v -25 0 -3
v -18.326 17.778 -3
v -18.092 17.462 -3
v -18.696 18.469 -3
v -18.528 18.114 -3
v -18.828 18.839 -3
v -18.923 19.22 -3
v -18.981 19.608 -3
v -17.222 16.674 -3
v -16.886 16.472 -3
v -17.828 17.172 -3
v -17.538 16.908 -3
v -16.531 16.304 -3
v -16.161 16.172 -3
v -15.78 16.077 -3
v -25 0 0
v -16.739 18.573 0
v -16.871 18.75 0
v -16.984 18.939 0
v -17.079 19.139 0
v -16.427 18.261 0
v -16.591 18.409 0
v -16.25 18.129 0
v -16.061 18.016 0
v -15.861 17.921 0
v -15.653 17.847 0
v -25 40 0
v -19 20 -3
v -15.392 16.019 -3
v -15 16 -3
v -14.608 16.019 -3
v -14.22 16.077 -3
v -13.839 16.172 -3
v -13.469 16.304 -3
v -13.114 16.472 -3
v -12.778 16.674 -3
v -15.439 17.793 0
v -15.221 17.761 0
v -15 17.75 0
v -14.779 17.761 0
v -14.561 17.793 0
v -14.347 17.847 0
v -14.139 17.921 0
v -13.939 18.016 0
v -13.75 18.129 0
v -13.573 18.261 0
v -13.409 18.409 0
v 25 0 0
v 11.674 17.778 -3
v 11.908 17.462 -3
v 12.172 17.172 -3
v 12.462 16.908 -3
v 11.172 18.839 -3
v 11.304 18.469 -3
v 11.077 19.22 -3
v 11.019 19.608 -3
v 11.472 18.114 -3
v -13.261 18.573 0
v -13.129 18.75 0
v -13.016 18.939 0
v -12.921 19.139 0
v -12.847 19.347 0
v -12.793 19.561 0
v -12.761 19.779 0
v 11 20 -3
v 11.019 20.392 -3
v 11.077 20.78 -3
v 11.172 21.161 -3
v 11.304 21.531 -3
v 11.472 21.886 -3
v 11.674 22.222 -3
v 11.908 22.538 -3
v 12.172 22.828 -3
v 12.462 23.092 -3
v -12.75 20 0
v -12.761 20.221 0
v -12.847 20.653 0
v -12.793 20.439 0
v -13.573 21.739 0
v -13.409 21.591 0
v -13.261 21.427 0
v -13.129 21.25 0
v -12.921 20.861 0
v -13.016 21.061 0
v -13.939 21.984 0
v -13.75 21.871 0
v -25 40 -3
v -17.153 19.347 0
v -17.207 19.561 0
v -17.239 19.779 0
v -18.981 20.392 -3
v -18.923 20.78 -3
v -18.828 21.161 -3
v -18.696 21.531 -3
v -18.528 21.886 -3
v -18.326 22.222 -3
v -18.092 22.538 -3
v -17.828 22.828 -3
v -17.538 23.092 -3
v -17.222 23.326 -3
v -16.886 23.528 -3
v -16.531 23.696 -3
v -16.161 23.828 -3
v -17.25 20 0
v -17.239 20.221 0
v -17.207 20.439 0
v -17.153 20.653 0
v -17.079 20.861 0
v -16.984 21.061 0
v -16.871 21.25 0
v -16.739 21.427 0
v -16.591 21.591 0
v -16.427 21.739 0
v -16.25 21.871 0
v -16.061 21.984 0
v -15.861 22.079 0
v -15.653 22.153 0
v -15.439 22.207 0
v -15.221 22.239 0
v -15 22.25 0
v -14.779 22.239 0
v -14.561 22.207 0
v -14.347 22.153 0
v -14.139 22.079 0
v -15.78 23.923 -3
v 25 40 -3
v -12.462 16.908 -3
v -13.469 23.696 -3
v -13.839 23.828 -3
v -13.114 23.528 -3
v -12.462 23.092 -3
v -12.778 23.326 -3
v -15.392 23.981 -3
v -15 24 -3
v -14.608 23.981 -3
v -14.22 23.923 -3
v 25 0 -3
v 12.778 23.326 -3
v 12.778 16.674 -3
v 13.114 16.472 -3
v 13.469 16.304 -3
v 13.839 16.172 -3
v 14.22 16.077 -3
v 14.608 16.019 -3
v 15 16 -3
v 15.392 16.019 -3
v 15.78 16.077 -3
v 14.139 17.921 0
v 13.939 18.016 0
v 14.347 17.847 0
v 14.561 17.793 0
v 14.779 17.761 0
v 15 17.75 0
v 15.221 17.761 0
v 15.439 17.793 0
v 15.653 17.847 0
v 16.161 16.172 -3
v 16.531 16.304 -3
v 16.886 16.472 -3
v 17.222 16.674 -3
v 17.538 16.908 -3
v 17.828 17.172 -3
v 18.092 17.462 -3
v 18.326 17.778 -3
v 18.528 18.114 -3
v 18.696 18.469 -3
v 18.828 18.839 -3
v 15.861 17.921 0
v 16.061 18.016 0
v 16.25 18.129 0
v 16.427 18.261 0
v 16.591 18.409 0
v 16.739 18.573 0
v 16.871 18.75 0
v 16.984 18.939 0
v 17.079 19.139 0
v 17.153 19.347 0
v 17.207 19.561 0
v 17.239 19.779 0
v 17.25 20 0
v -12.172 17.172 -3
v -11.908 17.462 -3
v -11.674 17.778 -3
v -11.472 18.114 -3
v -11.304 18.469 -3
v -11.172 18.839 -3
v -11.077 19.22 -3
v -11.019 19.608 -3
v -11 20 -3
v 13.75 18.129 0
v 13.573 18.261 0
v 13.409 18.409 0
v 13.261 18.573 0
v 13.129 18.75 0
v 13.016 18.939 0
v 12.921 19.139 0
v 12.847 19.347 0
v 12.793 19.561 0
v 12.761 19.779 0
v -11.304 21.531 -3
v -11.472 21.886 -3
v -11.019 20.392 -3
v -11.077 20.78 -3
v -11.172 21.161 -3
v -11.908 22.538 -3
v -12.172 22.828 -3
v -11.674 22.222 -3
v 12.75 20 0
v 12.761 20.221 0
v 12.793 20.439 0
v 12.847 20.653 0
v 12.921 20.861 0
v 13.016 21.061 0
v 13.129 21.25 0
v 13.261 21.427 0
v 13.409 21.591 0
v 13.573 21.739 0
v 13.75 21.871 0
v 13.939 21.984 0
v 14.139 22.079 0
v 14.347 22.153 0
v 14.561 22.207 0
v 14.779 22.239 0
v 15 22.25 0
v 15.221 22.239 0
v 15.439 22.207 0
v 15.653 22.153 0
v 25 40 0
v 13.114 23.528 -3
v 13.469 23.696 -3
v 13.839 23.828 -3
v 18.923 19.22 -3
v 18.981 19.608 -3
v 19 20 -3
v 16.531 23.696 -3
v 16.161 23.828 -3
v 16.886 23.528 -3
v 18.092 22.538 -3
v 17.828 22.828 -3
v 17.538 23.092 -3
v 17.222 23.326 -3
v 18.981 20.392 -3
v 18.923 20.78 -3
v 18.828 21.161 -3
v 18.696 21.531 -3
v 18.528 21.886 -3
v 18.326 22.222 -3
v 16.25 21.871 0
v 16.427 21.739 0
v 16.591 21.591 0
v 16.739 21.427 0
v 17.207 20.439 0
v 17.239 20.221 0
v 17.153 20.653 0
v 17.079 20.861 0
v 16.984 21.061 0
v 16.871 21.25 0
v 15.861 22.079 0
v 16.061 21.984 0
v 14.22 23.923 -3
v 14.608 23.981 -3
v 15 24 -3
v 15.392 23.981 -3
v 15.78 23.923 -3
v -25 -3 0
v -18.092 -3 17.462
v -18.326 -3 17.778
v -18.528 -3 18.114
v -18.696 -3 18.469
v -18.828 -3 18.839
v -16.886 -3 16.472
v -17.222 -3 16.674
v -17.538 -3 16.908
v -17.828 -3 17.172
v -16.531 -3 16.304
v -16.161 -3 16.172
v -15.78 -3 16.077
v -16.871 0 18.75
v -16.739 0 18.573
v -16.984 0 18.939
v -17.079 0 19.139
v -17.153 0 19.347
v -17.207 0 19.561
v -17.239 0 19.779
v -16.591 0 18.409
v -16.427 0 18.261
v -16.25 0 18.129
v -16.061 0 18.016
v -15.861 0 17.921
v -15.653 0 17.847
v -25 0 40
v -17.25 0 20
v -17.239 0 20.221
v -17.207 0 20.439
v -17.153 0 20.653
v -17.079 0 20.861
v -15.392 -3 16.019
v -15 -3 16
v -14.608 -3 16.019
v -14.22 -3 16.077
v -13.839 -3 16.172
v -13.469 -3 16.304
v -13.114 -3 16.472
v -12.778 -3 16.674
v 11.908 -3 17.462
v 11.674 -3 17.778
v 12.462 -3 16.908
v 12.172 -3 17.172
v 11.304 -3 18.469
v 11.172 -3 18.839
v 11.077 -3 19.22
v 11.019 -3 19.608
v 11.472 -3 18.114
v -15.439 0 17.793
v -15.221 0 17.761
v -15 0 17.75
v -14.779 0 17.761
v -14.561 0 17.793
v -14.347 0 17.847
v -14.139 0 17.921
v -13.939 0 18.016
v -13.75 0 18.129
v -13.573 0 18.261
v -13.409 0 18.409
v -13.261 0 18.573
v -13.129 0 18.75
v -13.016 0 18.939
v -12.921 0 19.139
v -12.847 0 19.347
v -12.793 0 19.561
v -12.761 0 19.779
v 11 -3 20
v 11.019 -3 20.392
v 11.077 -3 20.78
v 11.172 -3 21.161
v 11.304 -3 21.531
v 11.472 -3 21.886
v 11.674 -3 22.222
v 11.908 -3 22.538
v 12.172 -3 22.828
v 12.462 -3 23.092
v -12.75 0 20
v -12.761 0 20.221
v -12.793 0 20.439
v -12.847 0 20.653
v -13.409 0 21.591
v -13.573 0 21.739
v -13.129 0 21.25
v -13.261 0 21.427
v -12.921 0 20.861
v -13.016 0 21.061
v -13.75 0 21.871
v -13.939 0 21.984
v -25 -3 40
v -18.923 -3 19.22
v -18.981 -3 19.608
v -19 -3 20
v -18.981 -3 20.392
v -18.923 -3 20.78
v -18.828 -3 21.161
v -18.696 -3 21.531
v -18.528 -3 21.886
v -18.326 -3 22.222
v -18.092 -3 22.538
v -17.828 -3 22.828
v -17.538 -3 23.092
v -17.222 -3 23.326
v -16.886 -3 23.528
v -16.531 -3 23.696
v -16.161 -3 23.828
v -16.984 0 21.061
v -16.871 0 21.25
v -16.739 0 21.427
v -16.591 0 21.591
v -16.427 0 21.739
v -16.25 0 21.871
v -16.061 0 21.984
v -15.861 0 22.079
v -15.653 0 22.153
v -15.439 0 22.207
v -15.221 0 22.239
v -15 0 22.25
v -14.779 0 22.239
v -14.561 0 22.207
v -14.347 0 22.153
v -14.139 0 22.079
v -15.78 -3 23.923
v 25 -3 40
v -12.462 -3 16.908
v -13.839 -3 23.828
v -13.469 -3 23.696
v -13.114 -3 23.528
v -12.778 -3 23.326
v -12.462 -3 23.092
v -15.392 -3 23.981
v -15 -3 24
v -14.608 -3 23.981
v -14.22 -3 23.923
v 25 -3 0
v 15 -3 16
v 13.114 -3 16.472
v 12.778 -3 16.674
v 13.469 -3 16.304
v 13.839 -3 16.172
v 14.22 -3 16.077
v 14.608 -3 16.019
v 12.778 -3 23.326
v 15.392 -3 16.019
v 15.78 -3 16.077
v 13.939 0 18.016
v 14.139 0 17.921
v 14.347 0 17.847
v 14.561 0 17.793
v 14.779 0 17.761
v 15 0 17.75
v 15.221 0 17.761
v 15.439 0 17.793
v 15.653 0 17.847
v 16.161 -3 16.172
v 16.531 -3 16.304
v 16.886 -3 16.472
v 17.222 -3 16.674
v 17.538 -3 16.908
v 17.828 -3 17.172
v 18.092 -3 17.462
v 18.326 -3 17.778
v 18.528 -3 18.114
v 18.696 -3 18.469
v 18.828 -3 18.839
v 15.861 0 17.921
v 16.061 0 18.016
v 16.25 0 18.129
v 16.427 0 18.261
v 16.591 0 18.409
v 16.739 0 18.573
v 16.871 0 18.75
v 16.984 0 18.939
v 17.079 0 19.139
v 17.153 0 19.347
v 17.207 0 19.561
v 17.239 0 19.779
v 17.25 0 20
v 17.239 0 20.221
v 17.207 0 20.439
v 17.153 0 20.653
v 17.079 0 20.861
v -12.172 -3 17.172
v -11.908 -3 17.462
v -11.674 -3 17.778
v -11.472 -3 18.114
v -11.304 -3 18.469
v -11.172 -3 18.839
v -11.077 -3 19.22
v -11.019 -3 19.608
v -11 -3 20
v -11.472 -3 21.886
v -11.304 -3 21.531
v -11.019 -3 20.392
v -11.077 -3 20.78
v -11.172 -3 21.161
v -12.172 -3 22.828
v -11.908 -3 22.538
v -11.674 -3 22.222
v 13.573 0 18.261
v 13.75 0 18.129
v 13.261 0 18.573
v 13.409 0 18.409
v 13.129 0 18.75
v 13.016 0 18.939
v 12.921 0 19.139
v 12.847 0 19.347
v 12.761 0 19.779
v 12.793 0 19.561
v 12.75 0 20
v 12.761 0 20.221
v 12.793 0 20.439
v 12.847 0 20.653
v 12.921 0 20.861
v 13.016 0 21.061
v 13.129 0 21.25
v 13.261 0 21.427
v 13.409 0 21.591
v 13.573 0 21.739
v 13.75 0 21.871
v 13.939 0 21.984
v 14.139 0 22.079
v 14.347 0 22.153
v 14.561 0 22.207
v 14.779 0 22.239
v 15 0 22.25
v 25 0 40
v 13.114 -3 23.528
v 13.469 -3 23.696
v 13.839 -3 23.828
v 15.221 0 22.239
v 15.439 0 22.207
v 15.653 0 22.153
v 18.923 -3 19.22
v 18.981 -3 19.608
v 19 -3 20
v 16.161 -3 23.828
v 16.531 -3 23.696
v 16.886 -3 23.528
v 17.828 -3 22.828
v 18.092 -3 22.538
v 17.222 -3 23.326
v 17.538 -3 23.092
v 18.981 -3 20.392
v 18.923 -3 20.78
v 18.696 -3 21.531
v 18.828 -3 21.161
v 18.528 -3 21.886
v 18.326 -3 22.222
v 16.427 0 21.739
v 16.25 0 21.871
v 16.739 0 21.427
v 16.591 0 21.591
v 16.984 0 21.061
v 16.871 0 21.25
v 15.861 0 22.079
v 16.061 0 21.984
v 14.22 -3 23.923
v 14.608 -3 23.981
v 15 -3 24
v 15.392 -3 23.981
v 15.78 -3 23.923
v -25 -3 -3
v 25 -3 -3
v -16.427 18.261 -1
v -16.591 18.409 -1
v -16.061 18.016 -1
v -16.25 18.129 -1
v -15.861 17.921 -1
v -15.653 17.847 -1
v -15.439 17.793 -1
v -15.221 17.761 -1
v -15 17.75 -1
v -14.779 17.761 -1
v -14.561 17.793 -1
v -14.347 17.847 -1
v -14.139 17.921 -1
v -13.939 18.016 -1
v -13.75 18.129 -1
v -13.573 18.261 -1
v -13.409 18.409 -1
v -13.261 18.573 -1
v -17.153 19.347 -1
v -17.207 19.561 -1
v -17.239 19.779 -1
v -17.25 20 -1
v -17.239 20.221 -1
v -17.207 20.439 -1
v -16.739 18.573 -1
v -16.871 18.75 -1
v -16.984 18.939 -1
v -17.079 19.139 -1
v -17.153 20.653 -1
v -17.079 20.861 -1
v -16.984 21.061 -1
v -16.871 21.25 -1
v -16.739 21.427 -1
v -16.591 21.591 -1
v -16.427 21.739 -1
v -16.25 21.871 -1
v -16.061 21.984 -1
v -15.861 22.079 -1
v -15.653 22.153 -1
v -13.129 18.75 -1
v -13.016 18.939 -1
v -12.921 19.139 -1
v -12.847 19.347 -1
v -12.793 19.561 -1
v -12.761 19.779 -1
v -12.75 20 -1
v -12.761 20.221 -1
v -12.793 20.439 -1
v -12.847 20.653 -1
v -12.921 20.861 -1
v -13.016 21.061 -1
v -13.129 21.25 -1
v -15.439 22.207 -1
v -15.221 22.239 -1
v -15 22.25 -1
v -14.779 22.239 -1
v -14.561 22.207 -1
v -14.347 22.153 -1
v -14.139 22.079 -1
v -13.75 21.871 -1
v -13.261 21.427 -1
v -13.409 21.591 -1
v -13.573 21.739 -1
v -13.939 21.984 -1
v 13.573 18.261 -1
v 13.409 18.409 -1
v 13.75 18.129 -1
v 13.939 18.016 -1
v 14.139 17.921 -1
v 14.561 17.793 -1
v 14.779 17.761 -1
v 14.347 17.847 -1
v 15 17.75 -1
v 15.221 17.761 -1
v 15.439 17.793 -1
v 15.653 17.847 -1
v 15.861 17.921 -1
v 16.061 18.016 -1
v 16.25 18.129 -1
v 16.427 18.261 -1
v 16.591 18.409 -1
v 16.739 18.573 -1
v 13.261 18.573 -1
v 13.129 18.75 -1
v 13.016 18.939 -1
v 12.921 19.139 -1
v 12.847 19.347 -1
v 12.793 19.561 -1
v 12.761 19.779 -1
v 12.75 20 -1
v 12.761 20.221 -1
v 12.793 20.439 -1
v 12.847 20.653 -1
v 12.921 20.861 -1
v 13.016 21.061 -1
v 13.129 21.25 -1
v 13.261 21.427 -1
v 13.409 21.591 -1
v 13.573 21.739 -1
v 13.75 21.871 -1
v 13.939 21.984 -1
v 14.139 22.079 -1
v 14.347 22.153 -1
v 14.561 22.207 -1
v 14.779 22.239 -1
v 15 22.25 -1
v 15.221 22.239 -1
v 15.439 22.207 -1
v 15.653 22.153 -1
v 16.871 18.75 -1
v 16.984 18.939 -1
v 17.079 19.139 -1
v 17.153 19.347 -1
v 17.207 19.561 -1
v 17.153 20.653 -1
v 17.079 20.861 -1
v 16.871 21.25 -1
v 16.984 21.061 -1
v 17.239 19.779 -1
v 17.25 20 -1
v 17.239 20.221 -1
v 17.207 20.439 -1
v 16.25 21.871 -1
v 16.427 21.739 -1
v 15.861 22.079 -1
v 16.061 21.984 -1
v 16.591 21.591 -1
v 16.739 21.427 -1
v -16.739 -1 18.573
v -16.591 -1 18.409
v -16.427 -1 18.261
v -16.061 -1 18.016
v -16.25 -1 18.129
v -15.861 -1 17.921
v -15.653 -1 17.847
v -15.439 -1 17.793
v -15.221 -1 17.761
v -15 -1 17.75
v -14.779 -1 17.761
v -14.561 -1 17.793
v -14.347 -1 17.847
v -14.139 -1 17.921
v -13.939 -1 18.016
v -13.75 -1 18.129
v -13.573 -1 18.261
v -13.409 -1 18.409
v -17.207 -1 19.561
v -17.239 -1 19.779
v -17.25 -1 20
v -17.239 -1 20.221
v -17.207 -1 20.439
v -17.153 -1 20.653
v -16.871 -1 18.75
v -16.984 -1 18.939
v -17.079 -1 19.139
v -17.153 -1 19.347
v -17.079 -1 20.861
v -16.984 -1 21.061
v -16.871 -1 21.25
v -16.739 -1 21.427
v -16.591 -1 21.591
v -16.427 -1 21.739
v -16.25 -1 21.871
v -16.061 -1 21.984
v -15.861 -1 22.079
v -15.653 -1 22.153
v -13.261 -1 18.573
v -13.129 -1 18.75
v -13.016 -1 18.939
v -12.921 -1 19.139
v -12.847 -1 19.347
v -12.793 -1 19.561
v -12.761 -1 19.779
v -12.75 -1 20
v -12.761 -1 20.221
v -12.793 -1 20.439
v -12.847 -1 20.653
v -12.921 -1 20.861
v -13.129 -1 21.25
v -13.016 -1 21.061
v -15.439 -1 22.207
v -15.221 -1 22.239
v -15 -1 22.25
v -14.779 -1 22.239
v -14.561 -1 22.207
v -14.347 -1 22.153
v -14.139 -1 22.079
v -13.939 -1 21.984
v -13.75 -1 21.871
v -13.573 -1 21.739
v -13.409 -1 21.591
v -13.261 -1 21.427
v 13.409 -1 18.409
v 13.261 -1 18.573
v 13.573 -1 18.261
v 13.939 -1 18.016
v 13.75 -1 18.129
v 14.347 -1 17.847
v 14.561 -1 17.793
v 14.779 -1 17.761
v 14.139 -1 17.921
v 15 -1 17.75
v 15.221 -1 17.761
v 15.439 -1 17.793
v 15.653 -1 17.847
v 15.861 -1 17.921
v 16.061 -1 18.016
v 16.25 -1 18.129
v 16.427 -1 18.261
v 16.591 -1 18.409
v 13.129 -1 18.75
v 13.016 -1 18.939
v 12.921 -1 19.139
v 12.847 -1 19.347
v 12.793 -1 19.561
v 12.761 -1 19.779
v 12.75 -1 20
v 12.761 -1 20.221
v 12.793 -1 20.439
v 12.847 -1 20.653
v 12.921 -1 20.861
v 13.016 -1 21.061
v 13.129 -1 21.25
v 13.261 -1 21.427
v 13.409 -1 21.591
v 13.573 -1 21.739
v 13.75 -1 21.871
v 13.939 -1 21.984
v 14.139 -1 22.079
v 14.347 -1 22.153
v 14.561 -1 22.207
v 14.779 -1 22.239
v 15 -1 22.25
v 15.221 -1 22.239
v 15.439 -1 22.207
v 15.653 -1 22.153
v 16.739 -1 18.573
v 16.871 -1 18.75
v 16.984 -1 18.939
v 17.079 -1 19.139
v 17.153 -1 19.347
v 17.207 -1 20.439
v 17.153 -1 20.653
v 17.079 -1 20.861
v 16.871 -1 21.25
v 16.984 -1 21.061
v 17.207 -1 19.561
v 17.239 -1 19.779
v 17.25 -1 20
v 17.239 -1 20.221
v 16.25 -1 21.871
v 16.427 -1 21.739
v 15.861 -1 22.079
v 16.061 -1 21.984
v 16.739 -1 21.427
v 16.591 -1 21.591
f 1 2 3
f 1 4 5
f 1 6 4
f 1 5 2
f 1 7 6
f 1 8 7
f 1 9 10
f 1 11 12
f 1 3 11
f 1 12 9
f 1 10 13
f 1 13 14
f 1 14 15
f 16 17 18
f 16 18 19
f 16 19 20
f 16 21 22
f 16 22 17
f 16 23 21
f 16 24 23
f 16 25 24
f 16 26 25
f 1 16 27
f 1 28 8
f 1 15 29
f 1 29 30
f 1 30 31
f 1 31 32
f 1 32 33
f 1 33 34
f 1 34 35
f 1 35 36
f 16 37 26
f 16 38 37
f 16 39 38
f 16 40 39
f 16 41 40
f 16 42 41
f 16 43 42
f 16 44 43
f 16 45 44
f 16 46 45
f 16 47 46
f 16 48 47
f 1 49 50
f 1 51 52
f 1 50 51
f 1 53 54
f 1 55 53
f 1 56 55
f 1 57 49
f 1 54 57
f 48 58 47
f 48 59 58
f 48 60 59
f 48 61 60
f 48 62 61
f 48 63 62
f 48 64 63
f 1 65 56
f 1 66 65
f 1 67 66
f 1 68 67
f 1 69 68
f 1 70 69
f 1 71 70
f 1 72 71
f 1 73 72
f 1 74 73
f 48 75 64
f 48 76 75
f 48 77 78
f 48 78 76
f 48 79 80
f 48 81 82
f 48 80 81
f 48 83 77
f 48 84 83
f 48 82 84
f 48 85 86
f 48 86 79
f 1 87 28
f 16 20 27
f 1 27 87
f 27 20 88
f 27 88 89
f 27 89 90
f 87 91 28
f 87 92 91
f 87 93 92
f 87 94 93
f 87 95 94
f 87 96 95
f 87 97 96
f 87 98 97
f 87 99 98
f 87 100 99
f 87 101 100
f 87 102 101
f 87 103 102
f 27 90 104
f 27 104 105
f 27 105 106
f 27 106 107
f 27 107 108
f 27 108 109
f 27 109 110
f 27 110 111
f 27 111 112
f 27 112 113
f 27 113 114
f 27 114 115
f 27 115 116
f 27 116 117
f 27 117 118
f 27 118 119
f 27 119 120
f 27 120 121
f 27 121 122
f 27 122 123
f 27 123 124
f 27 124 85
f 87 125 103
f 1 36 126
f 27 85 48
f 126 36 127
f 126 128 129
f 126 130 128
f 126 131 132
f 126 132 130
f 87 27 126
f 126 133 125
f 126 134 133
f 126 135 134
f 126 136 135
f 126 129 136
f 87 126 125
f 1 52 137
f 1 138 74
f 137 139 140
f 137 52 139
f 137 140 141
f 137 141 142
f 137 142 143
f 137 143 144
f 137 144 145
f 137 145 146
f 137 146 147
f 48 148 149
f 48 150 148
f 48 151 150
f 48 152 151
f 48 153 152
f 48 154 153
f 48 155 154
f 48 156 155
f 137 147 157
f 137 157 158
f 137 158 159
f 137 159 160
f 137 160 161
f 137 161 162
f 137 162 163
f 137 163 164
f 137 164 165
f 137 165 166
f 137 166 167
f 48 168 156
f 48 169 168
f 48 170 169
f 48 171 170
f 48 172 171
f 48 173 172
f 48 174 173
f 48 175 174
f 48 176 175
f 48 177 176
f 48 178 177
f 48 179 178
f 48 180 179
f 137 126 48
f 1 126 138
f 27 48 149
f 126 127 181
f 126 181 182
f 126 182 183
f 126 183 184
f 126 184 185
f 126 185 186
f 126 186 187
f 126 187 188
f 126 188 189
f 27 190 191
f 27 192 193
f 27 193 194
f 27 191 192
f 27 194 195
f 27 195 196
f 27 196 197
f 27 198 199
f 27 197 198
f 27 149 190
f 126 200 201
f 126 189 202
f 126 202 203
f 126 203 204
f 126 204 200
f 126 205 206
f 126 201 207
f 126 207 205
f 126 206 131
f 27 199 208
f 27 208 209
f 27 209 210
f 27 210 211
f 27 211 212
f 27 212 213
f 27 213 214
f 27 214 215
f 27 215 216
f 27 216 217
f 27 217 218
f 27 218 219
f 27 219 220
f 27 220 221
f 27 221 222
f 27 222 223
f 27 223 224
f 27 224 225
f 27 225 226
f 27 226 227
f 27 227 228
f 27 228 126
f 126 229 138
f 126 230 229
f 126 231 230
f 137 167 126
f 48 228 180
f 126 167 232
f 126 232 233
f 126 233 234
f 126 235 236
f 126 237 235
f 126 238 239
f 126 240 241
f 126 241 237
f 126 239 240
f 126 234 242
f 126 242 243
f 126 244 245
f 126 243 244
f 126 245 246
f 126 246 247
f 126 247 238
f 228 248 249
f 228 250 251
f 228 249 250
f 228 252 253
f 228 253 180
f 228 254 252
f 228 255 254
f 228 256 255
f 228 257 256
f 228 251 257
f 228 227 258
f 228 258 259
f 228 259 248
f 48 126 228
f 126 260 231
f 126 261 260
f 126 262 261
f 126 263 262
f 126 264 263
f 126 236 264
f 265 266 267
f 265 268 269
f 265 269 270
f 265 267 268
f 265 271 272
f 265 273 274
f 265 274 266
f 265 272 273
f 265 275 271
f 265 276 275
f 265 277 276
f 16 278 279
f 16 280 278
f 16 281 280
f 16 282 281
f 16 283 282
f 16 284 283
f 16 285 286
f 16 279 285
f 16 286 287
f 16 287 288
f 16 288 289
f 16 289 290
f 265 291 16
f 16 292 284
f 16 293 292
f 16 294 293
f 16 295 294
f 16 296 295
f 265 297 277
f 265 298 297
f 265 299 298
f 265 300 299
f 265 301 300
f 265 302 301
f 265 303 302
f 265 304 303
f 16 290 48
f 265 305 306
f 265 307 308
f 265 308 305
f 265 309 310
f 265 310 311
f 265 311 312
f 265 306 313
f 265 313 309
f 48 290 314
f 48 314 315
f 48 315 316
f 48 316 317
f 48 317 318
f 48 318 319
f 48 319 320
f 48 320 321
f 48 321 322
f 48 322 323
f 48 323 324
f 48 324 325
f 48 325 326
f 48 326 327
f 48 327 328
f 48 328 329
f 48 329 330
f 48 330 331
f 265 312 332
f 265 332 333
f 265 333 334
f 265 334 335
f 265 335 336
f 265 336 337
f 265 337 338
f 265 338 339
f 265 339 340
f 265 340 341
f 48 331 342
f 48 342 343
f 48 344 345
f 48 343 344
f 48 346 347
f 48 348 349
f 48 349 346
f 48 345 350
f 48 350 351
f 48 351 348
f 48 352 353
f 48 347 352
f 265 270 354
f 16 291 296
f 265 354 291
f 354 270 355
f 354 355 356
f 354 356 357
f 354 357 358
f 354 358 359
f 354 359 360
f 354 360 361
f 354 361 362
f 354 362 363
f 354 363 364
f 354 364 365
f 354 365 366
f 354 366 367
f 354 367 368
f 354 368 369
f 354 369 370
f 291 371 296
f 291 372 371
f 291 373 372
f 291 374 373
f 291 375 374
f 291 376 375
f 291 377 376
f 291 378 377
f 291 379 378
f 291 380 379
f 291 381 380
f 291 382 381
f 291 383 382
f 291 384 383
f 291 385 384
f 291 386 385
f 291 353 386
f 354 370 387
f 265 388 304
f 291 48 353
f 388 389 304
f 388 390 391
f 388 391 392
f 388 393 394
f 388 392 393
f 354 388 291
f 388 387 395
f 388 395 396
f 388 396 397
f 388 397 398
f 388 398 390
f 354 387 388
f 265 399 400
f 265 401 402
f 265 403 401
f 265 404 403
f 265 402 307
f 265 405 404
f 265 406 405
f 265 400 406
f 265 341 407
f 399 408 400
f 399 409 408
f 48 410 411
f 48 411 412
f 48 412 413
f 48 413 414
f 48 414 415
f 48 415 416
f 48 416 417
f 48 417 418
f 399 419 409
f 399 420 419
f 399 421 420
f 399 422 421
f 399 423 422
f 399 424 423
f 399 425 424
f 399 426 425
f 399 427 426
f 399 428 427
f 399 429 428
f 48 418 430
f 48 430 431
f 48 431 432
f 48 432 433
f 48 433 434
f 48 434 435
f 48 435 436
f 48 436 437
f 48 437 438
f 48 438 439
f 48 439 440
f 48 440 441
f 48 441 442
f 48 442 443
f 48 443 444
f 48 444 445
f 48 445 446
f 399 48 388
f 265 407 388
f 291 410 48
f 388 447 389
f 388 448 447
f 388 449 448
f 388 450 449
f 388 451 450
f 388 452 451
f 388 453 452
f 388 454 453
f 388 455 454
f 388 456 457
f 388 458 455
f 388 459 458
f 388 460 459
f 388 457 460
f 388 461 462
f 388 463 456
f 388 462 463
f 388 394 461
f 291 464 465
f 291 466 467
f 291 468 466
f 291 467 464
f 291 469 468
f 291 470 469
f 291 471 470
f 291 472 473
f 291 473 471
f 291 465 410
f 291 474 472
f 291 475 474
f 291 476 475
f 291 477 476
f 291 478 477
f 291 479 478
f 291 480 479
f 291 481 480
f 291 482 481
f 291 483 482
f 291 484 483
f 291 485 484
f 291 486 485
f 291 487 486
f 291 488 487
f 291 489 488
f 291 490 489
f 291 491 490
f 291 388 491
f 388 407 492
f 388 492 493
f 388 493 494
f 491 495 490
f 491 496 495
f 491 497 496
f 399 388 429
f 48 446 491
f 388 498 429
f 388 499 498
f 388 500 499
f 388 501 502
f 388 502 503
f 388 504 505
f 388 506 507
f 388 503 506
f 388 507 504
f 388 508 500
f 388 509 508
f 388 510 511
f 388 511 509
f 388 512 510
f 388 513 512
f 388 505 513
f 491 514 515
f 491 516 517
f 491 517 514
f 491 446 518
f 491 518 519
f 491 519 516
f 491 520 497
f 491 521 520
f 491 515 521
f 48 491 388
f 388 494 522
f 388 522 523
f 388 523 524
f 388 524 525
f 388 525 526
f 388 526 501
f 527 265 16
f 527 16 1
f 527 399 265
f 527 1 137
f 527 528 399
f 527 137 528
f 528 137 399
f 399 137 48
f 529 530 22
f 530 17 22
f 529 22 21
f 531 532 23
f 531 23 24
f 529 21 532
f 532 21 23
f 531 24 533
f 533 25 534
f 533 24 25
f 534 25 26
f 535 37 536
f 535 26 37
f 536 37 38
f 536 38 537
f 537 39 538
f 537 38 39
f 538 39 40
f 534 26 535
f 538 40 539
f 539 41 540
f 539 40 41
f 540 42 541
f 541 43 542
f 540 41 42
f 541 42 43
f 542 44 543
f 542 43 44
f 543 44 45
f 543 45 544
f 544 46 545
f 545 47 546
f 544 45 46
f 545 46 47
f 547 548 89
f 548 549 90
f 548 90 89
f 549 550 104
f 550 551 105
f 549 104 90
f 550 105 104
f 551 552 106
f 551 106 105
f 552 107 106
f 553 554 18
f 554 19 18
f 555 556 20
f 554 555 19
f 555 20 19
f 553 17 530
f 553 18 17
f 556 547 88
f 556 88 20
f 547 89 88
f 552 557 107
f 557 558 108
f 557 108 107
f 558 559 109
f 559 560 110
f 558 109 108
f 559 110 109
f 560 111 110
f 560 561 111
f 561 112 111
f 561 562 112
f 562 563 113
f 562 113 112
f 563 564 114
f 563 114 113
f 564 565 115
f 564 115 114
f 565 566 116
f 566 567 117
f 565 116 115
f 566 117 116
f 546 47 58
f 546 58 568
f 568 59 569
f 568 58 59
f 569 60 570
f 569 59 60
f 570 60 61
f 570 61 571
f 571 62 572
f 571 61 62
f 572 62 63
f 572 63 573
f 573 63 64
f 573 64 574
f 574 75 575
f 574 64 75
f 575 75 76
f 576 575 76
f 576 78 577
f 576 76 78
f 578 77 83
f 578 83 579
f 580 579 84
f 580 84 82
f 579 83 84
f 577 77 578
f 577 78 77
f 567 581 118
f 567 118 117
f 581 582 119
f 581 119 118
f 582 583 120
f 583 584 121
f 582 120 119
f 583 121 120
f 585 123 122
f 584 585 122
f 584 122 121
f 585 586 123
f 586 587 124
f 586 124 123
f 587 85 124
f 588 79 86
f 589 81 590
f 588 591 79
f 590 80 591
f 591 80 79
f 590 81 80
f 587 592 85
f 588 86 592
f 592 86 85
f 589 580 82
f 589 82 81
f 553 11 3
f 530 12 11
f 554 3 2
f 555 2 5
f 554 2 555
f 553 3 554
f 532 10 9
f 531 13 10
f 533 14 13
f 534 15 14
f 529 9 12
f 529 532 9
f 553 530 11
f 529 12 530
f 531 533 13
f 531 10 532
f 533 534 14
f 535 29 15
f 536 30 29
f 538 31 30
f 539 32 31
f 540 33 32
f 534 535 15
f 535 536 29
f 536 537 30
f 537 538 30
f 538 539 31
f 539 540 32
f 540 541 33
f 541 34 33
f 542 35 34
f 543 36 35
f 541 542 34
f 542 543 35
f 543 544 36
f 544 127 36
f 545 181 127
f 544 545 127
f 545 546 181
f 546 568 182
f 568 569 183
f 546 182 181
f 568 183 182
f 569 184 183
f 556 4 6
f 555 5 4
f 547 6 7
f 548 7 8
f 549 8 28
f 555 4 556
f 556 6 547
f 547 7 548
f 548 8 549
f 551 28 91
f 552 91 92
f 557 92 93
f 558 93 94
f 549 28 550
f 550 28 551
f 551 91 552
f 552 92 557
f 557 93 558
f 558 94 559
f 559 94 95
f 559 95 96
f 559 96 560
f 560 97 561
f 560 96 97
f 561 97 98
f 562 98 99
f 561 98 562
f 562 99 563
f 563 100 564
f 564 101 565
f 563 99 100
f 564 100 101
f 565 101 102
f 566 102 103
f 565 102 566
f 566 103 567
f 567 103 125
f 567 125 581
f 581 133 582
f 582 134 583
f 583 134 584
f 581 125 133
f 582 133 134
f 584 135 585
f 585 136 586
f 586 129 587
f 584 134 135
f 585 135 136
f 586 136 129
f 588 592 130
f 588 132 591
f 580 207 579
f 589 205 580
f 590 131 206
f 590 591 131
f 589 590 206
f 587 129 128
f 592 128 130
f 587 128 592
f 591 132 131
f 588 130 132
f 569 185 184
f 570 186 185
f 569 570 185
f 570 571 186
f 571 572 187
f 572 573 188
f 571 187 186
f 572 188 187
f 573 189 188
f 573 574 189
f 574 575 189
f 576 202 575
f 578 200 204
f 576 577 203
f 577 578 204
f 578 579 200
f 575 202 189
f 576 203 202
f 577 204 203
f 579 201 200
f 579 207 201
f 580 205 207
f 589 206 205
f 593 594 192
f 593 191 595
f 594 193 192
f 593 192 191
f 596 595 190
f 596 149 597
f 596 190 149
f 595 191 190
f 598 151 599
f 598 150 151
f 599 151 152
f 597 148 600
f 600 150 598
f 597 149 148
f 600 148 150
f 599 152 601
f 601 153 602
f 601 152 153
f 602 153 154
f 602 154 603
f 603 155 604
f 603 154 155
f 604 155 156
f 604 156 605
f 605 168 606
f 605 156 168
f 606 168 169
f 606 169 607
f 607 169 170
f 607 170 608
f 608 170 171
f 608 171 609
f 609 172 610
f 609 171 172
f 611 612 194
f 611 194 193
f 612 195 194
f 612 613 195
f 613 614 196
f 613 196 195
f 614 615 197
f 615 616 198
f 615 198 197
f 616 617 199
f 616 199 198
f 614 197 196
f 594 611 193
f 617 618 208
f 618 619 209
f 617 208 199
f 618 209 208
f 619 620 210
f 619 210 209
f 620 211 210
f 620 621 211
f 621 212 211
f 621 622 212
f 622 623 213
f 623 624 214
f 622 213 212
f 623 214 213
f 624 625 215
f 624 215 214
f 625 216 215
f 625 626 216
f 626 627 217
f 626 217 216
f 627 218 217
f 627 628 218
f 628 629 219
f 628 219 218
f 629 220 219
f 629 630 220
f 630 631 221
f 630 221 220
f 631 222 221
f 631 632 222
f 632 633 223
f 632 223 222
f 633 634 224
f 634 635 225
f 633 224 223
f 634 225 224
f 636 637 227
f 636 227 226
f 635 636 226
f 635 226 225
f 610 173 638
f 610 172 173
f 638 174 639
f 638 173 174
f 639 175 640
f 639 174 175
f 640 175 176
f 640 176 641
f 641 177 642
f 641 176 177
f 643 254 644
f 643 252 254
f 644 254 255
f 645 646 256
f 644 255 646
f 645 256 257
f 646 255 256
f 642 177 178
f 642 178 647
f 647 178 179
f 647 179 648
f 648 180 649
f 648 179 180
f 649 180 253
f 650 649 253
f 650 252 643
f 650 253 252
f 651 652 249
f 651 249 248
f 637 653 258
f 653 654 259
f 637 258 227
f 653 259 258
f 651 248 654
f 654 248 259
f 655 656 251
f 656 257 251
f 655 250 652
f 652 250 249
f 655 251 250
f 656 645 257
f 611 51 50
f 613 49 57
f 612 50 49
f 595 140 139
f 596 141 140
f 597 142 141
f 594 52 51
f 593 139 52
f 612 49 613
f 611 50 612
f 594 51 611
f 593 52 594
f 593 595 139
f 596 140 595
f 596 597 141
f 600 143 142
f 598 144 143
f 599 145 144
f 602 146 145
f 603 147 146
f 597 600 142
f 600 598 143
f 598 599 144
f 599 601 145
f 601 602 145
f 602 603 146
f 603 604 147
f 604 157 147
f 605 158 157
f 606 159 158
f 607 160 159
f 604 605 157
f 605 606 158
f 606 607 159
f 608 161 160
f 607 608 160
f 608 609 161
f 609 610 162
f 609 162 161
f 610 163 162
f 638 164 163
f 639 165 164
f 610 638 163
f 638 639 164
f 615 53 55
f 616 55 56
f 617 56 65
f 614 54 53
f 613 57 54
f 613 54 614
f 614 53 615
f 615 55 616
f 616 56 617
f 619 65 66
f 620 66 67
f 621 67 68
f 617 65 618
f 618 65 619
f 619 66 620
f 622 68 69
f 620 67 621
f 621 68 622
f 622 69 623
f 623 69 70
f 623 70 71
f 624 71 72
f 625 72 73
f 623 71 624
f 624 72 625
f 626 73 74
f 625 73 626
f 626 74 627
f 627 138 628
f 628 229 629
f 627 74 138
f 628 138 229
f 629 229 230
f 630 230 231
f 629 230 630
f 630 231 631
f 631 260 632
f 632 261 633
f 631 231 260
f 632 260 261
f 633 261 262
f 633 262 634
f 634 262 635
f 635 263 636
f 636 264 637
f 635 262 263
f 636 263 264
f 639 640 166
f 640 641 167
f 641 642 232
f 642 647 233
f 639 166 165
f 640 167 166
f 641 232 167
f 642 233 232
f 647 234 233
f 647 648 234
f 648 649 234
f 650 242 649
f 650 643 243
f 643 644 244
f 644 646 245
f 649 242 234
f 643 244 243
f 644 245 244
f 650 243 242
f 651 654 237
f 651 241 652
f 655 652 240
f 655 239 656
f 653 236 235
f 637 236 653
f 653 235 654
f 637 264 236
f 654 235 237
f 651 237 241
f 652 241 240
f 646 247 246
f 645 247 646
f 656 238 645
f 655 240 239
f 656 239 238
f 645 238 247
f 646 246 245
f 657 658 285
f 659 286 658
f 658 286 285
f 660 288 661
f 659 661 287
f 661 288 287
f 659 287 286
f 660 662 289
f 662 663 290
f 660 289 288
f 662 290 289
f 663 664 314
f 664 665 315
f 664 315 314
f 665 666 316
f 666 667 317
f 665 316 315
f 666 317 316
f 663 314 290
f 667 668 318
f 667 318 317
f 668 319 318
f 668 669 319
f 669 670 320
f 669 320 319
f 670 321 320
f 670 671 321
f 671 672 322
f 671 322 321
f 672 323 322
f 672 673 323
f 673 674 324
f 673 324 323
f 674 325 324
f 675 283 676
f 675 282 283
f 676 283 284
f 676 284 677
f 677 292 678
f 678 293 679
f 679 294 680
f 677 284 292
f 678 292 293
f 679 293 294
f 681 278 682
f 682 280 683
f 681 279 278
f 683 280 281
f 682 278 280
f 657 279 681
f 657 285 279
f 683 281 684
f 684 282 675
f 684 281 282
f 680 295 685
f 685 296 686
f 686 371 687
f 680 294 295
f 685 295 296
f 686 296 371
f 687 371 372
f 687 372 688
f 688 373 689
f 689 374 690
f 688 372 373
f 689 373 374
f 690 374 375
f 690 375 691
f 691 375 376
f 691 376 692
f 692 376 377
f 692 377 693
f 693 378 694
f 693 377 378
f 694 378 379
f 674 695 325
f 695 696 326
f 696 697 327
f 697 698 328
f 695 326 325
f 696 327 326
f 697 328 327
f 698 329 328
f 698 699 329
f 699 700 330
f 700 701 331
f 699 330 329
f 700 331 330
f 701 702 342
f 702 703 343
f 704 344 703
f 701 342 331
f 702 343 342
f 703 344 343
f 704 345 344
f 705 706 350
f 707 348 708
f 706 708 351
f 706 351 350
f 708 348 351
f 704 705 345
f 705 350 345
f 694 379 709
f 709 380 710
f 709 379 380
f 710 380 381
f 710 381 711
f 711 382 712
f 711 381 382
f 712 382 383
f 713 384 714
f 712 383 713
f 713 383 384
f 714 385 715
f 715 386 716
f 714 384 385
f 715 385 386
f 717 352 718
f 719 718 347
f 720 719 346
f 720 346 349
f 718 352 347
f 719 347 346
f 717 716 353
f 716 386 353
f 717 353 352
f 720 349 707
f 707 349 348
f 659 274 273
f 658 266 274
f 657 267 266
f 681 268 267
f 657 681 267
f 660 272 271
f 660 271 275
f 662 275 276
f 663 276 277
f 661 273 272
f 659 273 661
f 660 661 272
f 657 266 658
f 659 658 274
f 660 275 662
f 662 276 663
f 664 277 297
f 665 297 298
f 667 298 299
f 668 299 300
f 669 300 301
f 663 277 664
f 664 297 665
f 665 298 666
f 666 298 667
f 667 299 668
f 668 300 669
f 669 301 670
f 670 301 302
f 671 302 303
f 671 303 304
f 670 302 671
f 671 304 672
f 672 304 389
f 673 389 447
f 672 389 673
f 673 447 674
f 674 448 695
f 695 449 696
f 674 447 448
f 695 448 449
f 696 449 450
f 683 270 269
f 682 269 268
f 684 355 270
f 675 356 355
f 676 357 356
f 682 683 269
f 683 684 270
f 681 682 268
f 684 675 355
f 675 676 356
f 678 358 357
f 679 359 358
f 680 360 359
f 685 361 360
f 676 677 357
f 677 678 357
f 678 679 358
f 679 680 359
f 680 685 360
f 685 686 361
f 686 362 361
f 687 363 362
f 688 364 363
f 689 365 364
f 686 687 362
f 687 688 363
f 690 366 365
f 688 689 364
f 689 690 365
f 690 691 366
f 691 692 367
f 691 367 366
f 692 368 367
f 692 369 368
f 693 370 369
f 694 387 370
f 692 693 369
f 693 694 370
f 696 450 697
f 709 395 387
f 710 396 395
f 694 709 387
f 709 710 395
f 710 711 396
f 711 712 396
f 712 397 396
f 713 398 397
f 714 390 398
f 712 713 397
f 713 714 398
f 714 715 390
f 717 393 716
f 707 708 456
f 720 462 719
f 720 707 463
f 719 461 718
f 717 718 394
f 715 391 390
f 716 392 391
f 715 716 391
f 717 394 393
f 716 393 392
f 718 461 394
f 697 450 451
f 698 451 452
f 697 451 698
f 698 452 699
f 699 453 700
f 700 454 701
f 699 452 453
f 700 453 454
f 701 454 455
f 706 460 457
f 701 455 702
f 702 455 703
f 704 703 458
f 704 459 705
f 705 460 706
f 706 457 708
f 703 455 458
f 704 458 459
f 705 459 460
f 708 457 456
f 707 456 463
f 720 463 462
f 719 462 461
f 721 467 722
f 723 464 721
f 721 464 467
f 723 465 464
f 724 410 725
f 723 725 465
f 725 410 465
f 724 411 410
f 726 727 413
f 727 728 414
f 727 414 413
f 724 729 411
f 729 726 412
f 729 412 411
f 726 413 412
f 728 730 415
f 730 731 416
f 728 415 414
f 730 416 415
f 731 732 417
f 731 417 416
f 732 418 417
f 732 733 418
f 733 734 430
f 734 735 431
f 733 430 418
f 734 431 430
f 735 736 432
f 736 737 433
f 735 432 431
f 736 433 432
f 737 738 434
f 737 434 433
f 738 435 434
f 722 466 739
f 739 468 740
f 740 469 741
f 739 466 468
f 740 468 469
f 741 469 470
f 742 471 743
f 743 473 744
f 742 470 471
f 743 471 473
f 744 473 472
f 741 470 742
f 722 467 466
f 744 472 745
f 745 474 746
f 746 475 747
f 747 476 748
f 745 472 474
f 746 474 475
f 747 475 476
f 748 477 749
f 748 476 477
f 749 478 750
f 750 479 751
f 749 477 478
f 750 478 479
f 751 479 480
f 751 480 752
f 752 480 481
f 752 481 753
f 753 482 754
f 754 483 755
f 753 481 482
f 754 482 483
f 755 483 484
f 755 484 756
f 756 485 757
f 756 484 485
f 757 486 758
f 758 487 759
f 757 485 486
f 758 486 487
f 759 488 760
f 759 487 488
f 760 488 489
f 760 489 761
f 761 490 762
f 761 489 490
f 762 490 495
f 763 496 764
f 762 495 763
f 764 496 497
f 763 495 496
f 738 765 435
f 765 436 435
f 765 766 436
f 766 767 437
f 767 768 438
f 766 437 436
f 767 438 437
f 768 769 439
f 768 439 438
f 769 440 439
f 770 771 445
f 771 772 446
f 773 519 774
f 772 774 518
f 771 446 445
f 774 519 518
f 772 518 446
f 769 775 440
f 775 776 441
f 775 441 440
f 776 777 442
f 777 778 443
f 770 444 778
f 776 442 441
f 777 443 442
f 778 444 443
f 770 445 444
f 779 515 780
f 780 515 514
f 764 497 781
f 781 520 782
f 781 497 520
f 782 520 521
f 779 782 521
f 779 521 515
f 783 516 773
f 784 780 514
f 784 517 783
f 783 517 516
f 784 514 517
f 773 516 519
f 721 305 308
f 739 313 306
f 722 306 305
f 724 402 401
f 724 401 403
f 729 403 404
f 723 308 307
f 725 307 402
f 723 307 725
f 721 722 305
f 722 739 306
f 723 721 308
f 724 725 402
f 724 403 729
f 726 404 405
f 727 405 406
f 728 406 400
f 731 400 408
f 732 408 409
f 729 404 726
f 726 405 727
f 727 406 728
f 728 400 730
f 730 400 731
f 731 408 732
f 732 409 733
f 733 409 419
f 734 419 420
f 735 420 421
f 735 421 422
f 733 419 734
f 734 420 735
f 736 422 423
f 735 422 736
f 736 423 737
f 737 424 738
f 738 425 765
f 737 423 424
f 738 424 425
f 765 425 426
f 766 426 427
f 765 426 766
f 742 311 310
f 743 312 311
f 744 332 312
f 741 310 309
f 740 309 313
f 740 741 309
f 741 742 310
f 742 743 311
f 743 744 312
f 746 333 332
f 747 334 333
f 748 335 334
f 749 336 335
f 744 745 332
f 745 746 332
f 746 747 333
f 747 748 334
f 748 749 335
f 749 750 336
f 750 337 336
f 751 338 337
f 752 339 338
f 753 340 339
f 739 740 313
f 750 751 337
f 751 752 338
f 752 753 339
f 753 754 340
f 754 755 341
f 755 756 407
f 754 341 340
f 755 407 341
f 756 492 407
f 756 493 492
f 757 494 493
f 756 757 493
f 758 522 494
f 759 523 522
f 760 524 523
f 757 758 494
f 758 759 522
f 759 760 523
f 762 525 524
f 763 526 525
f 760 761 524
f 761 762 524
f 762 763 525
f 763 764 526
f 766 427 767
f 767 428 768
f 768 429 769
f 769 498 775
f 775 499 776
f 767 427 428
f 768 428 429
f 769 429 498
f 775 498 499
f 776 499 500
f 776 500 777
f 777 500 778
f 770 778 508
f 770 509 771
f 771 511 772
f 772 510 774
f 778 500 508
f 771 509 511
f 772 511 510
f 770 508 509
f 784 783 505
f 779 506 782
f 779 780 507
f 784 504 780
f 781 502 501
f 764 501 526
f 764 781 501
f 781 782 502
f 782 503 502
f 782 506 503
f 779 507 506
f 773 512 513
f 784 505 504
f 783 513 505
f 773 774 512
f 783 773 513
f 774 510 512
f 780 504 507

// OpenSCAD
// L-bracket with countersunk holes (M4)
$fn = 64;

// ---- parameters ----
width     = 50;   // 幅 (X)
depth     = 40;   // 水平面の奥行き (+Y)
height    = 40;   // 垂直面の高さ (+Z)
t         = 3;    // 板厚

hole_d    = 4.5;  // M4 貫通穴
cs_d      = 8;    // 皿座面径
cs_depth  = 2;    // 皿座面深さ
edge_off  = 10;   // 縁からのオフセット
eps       = 0.1;  // ブーリアン用マージン

// 皿穴モジュール: 外側表面が z=0、+Z 方向に貫通
module csk_hole(thickness) {
    // 貫通穴
    translate([0, 0, -eps])
        cylinder(h = thickness + 2*eps, d = hole_d);
    // 皿座面(円錐)
    cylinder(h = cs_depth, d1 = cs_d, d2 = hole_d);
    // 表面側の食い込みマージン
    translate([0, 0, -eps])
        cylinder(h = eps + 0.01, d = cs_d);
}

difference() {
    // ---- 本体 ----
    union() {
        // 水平フランジ(上面が z=0、+Y 方向に伸びる)
        translate([-width/2, 0, -t])
            cube([width, depth, t]);
        // 垂直フランジ(内面が y=0、+Z 方向に伸びる)
        translate([-width/2, -t, -t])
            cube([width, t, height + t]);
    }

    // ---- 水平面の皿穴(皿座面は下側=外側) ----
    for (x = [-(width/2 - edge_off), (width/2 - edge_off)])
        translate([x, depth/2, -t])
            csk_hole(t);

    // ---- 垂直面の皿穴(皿座面は背面側=外側) ----
    for (x = [-(width/2 - edge_off), (width/2 - edge_off)])
        translate([x, -t, height/2])
            rotate([-90, 0, 0])
                csk_hole(t);
}
